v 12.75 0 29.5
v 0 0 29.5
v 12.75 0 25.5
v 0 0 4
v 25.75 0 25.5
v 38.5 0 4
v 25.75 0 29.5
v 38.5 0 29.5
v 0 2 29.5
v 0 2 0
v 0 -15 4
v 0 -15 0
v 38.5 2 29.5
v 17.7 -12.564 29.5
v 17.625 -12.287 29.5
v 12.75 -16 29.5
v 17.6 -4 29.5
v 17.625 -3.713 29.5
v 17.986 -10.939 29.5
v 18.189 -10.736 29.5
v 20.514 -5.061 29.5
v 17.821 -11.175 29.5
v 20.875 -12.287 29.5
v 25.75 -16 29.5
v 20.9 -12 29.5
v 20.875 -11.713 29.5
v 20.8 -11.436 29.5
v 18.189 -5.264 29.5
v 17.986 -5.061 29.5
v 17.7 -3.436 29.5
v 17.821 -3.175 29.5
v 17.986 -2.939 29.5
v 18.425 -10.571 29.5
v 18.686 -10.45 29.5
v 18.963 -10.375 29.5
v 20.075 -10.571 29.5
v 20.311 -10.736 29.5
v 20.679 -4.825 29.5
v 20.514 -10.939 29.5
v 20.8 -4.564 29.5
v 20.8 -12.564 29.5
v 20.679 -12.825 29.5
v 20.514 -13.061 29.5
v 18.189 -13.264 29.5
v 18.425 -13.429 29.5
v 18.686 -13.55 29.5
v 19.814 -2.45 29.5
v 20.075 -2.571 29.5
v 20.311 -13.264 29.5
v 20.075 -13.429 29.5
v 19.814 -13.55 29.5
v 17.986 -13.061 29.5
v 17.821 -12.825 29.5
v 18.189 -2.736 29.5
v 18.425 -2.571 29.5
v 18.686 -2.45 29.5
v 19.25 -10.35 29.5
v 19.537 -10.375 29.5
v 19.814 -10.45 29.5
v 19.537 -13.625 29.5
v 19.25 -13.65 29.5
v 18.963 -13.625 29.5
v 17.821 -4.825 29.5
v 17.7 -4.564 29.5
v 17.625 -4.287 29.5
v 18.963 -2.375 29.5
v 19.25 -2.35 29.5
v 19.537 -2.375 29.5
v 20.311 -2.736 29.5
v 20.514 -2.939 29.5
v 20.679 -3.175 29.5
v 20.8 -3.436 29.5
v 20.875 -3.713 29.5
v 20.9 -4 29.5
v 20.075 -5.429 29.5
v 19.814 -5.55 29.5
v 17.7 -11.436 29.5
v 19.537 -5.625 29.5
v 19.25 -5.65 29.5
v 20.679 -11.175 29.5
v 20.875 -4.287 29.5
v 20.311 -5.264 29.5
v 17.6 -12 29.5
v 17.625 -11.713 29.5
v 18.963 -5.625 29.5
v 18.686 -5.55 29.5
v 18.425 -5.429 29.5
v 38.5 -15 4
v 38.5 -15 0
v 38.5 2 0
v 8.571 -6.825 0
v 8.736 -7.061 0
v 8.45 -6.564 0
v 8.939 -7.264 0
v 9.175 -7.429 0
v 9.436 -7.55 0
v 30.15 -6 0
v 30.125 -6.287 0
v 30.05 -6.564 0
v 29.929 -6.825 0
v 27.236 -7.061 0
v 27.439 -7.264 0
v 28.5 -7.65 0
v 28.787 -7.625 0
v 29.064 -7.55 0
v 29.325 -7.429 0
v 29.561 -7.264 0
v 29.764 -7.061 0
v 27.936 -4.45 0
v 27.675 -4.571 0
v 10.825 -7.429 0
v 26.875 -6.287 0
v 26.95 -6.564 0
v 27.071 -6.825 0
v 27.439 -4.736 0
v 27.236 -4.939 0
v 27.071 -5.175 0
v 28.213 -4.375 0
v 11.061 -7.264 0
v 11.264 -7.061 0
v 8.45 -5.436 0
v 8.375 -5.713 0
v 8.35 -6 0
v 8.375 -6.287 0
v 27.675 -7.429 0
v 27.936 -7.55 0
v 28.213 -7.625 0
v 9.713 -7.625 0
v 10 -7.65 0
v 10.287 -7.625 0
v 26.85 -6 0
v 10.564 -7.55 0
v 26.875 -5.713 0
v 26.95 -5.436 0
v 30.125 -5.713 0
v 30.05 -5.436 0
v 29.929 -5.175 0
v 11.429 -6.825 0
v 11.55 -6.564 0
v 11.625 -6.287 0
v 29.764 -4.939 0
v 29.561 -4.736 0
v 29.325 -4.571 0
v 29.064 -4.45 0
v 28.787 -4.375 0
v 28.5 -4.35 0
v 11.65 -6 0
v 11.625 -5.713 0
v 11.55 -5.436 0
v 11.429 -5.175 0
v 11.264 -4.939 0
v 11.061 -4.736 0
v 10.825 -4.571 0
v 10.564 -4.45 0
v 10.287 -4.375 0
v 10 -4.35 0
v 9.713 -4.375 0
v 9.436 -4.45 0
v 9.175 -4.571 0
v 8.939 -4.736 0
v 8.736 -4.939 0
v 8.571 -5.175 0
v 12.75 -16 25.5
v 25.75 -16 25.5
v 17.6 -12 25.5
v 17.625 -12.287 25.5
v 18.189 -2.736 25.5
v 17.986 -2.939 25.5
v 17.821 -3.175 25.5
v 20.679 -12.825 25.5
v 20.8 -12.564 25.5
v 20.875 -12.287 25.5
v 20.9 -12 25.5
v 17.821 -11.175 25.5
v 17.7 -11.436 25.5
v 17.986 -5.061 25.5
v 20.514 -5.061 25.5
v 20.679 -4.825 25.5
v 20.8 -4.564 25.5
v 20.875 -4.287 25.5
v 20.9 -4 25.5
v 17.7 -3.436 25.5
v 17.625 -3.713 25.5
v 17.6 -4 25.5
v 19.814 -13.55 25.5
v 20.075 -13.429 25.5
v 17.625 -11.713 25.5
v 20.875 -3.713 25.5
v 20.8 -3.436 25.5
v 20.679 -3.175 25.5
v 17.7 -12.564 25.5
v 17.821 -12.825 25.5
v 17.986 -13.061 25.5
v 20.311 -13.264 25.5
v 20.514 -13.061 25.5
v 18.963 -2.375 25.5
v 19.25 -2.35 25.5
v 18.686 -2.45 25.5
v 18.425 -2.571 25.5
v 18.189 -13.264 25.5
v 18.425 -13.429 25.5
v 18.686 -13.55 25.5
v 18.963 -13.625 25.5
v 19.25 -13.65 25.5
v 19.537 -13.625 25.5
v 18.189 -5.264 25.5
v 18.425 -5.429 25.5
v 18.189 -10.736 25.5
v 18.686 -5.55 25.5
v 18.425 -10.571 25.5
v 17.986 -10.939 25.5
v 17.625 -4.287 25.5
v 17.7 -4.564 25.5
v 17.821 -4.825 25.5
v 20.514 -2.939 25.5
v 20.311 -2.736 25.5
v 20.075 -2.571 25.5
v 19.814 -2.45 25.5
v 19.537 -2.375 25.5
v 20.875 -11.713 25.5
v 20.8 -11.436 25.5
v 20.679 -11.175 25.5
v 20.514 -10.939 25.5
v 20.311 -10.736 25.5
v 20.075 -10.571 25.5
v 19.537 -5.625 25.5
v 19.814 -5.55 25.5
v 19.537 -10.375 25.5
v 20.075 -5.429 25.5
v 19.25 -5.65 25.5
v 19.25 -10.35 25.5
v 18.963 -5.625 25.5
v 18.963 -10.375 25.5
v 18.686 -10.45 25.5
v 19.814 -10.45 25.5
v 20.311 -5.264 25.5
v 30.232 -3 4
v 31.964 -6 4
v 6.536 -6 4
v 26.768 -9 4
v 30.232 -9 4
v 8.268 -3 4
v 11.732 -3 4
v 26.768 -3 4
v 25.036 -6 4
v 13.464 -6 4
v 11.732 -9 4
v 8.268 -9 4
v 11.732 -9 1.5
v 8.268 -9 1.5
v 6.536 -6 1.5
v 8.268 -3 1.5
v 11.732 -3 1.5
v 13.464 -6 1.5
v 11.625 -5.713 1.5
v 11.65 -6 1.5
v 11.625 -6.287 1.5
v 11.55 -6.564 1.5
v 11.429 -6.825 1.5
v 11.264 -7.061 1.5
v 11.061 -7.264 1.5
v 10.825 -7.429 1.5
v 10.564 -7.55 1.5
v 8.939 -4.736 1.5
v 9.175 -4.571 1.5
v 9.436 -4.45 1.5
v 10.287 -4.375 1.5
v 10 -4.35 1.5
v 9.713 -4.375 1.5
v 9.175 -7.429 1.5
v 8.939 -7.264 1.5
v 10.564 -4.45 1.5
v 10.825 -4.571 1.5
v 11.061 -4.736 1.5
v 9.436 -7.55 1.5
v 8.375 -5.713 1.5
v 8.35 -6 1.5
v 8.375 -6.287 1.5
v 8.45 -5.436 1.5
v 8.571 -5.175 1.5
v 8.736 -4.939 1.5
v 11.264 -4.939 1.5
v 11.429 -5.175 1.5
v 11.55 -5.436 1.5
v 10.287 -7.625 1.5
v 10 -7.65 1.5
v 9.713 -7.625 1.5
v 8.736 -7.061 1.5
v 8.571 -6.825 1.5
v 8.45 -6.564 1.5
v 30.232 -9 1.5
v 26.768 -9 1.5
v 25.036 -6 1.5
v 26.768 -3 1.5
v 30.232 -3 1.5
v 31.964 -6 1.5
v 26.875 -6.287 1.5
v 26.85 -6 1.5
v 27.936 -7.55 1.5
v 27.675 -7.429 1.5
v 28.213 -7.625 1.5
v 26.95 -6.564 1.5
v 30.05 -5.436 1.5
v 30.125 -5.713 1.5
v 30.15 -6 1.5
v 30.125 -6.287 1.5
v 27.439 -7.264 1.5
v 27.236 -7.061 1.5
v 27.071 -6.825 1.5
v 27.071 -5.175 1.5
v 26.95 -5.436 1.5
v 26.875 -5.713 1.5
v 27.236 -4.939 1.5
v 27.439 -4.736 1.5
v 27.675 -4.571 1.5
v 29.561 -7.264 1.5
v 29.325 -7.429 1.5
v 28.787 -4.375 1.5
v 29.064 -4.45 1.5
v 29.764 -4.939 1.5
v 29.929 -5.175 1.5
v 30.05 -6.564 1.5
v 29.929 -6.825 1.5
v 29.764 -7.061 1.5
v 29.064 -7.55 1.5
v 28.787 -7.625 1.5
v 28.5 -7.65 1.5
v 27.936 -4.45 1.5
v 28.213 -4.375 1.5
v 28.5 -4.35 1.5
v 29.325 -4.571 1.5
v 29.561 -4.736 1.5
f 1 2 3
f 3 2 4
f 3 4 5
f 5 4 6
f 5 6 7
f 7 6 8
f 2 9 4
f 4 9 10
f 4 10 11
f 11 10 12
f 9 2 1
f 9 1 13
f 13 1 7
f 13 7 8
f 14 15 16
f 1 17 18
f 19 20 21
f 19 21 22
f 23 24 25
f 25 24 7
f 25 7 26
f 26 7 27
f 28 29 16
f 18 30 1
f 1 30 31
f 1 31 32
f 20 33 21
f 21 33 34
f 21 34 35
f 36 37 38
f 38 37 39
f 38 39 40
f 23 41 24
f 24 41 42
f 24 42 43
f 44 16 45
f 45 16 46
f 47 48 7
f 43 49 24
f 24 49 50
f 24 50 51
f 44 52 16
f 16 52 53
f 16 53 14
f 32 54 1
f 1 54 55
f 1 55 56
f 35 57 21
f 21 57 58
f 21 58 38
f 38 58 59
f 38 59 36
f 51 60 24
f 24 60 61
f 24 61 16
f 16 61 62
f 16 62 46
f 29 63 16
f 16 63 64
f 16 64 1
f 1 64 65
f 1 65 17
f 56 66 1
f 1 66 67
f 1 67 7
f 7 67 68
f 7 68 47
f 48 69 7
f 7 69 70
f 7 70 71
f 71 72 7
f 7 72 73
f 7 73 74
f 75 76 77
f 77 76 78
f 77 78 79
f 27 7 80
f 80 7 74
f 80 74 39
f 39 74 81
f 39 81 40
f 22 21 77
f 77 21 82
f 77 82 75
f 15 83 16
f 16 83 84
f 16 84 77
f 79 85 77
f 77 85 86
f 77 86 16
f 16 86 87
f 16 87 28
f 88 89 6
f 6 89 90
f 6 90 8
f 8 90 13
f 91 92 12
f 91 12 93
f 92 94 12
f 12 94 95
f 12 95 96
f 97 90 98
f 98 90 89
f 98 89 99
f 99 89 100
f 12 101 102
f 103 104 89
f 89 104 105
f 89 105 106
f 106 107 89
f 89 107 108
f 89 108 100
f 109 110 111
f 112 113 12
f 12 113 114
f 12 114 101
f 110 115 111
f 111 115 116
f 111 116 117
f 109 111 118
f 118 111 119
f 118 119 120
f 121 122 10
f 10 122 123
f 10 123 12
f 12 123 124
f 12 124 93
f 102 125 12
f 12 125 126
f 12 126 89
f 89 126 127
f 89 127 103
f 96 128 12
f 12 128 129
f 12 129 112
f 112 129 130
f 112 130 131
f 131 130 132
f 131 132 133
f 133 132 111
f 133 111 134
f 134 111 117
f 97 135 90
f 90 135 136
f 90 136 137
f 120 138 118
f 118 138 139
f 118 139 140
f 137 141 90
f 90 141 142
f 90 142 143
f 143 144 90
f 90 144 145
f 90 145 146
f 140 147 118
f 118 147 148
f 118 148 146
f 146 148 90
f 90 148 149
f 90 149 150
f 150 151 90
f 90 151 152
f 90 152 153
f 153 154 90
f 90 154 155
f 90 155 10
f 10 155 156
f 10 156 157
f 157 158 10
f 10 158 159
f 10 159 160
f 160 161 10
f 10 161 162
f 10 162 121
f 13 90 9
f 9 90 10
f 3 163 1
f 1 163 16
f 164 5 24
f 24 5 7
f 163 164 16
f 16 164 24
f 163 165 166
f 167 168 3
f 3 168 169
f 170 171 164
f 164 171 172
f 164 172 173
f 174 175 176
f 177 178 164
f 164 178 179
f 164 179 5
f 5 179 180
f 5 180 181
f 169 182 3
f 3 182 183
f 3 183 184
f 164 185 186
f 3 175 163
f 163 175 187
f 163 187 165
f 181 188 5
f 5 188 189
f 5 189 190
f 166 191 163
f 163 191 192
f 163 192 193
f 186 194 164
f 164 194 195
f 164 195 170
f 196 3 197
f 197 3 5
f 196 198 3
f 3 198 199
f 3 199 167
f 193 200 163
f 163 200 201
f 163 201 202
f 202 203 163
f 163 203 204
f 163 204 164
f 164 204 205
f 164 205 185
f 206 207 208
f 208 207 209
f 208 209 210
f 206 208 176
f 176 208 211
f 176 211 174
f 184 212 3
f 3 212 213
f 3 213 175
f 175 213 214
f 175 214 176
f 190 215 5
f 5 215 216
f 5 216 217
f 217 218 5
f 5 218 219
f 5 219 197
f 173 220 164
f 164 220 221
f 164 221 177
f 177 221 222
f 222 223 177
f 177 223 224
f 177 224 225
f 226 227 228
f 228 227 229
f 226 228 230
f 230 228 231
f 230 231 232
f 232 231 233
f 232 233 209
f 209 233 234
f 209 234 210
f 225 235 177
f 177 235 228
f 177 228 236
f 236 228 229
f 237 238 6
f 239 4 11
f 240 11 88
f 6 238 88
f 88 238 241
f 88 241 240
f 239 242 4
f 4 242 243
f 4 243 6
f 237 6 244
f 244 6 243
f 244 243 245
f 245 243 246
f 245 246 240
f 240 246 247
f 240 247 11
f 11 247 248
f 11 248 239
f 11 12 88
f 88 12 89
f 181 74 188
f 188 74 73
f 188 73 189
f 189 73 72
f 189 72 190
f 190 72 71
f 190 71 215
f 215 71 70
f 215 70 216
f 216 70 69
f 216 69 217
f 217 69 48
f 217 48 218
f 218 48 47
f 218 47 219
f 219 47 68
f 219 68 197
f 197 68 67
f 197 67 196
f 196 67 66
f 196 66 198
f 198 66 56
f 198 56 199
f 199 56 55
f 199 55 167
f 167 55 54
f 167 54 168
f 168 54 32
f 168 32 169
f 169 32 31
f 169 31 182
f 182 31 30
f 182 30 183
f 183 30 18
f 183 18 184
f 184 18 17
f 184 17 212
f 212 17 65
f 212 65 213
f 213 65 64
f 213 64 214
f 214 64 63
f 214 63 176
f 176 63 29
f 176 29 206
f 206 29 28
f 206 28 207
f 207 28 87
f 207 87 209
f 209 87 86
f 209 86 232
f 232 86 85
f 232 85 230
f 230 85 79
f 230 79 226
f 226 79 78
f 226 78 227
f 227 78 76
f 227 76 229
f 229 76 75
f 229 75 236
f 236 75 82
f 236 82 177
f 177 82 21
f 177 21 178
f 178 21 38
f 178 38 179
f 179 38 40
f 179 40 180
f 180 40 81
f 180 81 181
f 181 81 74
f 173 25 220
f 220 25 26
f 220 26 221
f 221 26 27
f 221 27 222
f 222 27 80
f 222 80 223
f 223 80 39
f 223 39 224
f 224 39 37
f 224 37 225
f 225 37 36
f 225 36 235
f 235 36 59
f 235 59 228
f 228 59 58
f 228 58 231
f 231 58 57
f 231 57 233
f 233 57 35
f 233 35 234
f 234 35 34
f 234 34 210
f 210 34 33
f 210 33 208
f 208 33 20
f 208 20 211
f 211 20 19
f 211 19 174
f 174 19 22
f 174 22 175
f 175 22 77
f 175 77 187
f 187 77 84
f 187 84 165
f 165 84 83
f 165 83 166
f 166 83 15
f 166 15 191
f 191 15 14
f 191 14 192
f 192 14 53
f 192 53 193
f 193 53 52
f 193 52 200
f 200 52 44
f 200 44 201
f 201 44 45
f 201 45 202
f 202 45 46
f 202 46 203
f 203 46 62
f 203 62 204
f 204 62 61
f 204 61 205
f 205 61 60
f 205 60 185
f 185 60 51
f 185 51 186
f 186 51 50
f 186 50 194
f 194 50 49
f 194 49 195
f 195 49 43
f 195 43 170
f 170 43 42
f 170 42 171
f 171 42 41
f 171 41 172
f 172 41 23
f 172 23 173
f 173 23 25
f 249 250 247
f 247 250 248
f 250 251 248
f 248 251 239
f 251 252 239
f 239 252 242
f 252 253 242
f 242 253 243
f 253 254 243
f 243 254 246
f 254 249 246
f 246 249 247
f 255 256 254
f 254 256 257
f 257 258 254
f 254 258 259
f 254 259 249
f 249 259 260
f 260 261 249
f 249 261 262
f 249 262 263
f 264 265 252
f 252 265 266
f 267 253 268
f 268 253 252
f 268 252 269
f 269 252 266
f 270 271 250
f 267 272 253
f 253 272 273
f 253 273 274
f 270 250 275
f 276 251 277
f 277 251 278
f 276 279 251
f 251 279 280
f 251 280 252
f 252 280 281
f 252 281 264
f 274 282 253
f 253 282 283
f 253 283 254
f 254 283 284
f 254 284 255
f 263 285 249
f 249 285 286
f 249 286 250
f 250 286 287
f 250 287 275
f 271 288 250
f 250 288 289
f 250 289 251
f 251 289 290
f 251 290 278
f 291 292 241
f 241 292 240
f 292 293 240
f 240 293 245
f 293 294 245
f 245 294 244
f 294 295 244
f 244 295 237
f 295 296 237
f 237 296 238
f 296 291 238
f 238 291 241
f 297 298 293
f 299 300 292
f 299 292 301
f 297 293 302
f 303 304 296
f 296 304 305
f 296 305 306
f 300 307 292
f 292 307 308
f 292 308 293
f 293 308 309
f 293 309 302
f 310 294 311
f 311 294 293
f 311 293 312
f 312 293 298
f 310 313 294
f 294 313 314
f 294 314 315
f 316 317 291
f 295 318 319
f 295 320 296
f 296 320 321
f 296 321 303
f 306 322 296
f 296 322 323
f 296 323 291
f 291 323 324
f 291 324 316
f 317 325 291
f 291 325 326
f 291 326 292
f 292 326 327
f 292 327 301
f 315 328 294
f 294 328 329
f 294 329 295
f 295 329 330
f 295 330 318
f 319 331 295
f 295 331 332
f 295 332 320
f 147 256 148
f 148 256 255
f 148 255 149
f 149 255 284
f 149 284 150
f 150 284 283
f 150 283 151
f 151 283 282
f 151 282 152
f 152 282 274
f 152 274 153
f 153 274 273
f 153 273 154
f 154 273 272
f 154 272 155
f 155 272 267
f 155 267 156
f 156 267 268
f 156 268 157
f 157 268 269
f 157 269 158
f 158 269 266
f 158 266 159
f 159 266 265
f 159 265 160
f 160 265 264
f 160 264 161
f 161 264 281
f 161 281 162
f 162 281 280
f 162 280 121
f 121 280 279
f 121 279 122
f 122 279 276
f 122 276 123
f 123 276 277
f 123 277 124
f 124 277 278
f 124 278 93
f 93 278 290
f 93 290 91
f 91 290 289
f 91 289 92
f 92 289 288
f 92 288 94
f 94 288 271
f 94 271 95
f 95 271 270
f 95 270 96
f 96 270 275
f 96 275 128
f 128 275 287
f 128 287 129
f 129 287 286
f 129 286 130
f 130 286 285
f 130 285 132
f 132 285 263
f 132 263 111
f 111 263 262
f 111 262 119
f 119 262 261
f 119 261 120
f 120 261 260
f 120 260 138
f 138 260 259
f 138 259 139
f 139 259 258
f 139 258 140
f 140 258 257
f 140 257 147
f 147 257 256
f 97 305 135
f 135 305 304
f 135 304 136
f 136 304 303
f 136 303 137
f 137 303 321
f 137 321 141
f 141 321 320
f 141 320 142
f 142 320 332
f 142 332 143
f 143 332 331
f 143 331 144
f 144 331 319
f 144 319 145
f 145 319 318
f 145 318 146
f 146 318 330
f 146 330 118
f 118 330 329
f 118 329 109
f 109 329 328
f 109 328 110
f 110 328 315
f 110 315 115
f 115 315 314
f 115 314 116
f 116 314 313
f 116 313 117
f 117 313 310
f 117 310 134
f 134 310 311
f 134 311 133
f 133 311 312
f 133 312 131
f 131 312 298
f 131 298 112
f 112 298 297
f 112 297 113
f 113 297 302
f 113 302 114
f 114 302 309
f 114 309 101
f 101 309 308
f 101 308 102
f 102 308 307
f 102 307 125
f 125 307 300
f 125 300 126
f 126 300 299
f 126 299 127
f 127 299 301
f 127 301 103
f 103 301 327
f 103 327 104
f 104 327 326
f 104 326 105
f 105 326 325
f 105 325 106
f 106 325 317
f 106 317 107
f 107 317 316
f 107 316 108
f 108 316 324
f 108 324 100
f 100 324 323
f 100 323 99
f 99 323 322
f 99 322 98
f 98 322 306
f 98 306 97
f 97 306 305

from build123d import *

# Parameters (mm, degrees)
SKETCH1_W           = 38.5
SKETCH1_H           = 29.5
BOSS_EXTRUDE1_DEPTH = 2
SKETCH2_W           = 13
SKETCH2_H           = 16
BOSS_EXTRUDE2_DEPTH = 4
SKETCH3_W           = 38.5
SKETCH3_H           = 4
BOSS_EXTRUDE3_DEPTH = 15
SKETCH4_R           = 1.65
CUT_EXTRUDE1_DEPTH  = 15
CUT_EXTRUDE2_DEPTH  = 2.5
SKETCH6_R           = 1.65
CUT_EXTRUDE3_DEPTH  = 2.5


with BuildPart() as part:
    # Sketch1 → Boss-Extrude1 (new body)
    with BuildSketch(Plane(origin=(0, 0, 0), x_dir=(1, 0, 0), z_dir=(0, 1, 0))):
        with Locations((19.25, -14.75)):
            Rectangle(SKETCH1_W, SKETCH1_H)
    extrude(amount=BOSS_EXTRUDE1_DEPTH)

    # Sketch2 → Boss-Extrude2 (add)
    with BuildSketch(Plane.XY.offset(29.5)):
        with Locations((19.25, -8)):
            Rectangle(SKETCH2_W, SKETCH2_H)
    extrude(amount=-BOSS_EXTRUDE2_DEPTH)

    # Sketch3 → Boss-Extrude3 (add)
    with BuildSketch(Plane.XZ):
        with Locations((19.25, 2)):
            Rectangle(SKETCH3_W, SKETCH3_H)
    extrude(amount=BOSS_EXTRUDE3_DEPTH)

    # Sketch4 → Cut-Extrude1 (cut)
    with BuildSketch(Plane.XY.offset(29.5)):
        with Locations((19.25, -4)):
            Circle(SKETCH4_R)
        with Locations((19.25, -12)):
            Circle(SKETCH4_R)
    extrude(amount=-CUT_EXTRUDE1_DEPTH, mode=Mode.SUBTRACT)

    # Sketch5 → Cut-Extrude2 (cut)
    with BuildSketch(Plane.XY.offset(4)):
        Polygon((11.732050808, -9), (13.464101615, -6), (11.732050808, -3), (8.267949192, -3), (6.535898385, -6), (8.267949192, -9), align=None)
        Polygon((30.232050808, -9), (31.964101615, -6), (30.232050808, -3), (26.767949192, -3), (25.035898385, -6), (26.767949192, -9), align=None)
    extrude(amount=-CUT_EXTRUDE2_DEPTH, mode=Mode.SUBTRACT)

    # Sketch6 → Cut-Extrude3 (cut)
    with BuildSketch(Plane.XY.offset(1.5)):
        with Locations((10, -6)):
            Circle(SKETCH6_R)
        with Locations((28.5, -6)):
            Circle(SKETCH6_R)
    extrude(amount=-CUT_EXTRUDE3_DEPTH, mode=Mode.SUBTRACT)


solid = part.part
